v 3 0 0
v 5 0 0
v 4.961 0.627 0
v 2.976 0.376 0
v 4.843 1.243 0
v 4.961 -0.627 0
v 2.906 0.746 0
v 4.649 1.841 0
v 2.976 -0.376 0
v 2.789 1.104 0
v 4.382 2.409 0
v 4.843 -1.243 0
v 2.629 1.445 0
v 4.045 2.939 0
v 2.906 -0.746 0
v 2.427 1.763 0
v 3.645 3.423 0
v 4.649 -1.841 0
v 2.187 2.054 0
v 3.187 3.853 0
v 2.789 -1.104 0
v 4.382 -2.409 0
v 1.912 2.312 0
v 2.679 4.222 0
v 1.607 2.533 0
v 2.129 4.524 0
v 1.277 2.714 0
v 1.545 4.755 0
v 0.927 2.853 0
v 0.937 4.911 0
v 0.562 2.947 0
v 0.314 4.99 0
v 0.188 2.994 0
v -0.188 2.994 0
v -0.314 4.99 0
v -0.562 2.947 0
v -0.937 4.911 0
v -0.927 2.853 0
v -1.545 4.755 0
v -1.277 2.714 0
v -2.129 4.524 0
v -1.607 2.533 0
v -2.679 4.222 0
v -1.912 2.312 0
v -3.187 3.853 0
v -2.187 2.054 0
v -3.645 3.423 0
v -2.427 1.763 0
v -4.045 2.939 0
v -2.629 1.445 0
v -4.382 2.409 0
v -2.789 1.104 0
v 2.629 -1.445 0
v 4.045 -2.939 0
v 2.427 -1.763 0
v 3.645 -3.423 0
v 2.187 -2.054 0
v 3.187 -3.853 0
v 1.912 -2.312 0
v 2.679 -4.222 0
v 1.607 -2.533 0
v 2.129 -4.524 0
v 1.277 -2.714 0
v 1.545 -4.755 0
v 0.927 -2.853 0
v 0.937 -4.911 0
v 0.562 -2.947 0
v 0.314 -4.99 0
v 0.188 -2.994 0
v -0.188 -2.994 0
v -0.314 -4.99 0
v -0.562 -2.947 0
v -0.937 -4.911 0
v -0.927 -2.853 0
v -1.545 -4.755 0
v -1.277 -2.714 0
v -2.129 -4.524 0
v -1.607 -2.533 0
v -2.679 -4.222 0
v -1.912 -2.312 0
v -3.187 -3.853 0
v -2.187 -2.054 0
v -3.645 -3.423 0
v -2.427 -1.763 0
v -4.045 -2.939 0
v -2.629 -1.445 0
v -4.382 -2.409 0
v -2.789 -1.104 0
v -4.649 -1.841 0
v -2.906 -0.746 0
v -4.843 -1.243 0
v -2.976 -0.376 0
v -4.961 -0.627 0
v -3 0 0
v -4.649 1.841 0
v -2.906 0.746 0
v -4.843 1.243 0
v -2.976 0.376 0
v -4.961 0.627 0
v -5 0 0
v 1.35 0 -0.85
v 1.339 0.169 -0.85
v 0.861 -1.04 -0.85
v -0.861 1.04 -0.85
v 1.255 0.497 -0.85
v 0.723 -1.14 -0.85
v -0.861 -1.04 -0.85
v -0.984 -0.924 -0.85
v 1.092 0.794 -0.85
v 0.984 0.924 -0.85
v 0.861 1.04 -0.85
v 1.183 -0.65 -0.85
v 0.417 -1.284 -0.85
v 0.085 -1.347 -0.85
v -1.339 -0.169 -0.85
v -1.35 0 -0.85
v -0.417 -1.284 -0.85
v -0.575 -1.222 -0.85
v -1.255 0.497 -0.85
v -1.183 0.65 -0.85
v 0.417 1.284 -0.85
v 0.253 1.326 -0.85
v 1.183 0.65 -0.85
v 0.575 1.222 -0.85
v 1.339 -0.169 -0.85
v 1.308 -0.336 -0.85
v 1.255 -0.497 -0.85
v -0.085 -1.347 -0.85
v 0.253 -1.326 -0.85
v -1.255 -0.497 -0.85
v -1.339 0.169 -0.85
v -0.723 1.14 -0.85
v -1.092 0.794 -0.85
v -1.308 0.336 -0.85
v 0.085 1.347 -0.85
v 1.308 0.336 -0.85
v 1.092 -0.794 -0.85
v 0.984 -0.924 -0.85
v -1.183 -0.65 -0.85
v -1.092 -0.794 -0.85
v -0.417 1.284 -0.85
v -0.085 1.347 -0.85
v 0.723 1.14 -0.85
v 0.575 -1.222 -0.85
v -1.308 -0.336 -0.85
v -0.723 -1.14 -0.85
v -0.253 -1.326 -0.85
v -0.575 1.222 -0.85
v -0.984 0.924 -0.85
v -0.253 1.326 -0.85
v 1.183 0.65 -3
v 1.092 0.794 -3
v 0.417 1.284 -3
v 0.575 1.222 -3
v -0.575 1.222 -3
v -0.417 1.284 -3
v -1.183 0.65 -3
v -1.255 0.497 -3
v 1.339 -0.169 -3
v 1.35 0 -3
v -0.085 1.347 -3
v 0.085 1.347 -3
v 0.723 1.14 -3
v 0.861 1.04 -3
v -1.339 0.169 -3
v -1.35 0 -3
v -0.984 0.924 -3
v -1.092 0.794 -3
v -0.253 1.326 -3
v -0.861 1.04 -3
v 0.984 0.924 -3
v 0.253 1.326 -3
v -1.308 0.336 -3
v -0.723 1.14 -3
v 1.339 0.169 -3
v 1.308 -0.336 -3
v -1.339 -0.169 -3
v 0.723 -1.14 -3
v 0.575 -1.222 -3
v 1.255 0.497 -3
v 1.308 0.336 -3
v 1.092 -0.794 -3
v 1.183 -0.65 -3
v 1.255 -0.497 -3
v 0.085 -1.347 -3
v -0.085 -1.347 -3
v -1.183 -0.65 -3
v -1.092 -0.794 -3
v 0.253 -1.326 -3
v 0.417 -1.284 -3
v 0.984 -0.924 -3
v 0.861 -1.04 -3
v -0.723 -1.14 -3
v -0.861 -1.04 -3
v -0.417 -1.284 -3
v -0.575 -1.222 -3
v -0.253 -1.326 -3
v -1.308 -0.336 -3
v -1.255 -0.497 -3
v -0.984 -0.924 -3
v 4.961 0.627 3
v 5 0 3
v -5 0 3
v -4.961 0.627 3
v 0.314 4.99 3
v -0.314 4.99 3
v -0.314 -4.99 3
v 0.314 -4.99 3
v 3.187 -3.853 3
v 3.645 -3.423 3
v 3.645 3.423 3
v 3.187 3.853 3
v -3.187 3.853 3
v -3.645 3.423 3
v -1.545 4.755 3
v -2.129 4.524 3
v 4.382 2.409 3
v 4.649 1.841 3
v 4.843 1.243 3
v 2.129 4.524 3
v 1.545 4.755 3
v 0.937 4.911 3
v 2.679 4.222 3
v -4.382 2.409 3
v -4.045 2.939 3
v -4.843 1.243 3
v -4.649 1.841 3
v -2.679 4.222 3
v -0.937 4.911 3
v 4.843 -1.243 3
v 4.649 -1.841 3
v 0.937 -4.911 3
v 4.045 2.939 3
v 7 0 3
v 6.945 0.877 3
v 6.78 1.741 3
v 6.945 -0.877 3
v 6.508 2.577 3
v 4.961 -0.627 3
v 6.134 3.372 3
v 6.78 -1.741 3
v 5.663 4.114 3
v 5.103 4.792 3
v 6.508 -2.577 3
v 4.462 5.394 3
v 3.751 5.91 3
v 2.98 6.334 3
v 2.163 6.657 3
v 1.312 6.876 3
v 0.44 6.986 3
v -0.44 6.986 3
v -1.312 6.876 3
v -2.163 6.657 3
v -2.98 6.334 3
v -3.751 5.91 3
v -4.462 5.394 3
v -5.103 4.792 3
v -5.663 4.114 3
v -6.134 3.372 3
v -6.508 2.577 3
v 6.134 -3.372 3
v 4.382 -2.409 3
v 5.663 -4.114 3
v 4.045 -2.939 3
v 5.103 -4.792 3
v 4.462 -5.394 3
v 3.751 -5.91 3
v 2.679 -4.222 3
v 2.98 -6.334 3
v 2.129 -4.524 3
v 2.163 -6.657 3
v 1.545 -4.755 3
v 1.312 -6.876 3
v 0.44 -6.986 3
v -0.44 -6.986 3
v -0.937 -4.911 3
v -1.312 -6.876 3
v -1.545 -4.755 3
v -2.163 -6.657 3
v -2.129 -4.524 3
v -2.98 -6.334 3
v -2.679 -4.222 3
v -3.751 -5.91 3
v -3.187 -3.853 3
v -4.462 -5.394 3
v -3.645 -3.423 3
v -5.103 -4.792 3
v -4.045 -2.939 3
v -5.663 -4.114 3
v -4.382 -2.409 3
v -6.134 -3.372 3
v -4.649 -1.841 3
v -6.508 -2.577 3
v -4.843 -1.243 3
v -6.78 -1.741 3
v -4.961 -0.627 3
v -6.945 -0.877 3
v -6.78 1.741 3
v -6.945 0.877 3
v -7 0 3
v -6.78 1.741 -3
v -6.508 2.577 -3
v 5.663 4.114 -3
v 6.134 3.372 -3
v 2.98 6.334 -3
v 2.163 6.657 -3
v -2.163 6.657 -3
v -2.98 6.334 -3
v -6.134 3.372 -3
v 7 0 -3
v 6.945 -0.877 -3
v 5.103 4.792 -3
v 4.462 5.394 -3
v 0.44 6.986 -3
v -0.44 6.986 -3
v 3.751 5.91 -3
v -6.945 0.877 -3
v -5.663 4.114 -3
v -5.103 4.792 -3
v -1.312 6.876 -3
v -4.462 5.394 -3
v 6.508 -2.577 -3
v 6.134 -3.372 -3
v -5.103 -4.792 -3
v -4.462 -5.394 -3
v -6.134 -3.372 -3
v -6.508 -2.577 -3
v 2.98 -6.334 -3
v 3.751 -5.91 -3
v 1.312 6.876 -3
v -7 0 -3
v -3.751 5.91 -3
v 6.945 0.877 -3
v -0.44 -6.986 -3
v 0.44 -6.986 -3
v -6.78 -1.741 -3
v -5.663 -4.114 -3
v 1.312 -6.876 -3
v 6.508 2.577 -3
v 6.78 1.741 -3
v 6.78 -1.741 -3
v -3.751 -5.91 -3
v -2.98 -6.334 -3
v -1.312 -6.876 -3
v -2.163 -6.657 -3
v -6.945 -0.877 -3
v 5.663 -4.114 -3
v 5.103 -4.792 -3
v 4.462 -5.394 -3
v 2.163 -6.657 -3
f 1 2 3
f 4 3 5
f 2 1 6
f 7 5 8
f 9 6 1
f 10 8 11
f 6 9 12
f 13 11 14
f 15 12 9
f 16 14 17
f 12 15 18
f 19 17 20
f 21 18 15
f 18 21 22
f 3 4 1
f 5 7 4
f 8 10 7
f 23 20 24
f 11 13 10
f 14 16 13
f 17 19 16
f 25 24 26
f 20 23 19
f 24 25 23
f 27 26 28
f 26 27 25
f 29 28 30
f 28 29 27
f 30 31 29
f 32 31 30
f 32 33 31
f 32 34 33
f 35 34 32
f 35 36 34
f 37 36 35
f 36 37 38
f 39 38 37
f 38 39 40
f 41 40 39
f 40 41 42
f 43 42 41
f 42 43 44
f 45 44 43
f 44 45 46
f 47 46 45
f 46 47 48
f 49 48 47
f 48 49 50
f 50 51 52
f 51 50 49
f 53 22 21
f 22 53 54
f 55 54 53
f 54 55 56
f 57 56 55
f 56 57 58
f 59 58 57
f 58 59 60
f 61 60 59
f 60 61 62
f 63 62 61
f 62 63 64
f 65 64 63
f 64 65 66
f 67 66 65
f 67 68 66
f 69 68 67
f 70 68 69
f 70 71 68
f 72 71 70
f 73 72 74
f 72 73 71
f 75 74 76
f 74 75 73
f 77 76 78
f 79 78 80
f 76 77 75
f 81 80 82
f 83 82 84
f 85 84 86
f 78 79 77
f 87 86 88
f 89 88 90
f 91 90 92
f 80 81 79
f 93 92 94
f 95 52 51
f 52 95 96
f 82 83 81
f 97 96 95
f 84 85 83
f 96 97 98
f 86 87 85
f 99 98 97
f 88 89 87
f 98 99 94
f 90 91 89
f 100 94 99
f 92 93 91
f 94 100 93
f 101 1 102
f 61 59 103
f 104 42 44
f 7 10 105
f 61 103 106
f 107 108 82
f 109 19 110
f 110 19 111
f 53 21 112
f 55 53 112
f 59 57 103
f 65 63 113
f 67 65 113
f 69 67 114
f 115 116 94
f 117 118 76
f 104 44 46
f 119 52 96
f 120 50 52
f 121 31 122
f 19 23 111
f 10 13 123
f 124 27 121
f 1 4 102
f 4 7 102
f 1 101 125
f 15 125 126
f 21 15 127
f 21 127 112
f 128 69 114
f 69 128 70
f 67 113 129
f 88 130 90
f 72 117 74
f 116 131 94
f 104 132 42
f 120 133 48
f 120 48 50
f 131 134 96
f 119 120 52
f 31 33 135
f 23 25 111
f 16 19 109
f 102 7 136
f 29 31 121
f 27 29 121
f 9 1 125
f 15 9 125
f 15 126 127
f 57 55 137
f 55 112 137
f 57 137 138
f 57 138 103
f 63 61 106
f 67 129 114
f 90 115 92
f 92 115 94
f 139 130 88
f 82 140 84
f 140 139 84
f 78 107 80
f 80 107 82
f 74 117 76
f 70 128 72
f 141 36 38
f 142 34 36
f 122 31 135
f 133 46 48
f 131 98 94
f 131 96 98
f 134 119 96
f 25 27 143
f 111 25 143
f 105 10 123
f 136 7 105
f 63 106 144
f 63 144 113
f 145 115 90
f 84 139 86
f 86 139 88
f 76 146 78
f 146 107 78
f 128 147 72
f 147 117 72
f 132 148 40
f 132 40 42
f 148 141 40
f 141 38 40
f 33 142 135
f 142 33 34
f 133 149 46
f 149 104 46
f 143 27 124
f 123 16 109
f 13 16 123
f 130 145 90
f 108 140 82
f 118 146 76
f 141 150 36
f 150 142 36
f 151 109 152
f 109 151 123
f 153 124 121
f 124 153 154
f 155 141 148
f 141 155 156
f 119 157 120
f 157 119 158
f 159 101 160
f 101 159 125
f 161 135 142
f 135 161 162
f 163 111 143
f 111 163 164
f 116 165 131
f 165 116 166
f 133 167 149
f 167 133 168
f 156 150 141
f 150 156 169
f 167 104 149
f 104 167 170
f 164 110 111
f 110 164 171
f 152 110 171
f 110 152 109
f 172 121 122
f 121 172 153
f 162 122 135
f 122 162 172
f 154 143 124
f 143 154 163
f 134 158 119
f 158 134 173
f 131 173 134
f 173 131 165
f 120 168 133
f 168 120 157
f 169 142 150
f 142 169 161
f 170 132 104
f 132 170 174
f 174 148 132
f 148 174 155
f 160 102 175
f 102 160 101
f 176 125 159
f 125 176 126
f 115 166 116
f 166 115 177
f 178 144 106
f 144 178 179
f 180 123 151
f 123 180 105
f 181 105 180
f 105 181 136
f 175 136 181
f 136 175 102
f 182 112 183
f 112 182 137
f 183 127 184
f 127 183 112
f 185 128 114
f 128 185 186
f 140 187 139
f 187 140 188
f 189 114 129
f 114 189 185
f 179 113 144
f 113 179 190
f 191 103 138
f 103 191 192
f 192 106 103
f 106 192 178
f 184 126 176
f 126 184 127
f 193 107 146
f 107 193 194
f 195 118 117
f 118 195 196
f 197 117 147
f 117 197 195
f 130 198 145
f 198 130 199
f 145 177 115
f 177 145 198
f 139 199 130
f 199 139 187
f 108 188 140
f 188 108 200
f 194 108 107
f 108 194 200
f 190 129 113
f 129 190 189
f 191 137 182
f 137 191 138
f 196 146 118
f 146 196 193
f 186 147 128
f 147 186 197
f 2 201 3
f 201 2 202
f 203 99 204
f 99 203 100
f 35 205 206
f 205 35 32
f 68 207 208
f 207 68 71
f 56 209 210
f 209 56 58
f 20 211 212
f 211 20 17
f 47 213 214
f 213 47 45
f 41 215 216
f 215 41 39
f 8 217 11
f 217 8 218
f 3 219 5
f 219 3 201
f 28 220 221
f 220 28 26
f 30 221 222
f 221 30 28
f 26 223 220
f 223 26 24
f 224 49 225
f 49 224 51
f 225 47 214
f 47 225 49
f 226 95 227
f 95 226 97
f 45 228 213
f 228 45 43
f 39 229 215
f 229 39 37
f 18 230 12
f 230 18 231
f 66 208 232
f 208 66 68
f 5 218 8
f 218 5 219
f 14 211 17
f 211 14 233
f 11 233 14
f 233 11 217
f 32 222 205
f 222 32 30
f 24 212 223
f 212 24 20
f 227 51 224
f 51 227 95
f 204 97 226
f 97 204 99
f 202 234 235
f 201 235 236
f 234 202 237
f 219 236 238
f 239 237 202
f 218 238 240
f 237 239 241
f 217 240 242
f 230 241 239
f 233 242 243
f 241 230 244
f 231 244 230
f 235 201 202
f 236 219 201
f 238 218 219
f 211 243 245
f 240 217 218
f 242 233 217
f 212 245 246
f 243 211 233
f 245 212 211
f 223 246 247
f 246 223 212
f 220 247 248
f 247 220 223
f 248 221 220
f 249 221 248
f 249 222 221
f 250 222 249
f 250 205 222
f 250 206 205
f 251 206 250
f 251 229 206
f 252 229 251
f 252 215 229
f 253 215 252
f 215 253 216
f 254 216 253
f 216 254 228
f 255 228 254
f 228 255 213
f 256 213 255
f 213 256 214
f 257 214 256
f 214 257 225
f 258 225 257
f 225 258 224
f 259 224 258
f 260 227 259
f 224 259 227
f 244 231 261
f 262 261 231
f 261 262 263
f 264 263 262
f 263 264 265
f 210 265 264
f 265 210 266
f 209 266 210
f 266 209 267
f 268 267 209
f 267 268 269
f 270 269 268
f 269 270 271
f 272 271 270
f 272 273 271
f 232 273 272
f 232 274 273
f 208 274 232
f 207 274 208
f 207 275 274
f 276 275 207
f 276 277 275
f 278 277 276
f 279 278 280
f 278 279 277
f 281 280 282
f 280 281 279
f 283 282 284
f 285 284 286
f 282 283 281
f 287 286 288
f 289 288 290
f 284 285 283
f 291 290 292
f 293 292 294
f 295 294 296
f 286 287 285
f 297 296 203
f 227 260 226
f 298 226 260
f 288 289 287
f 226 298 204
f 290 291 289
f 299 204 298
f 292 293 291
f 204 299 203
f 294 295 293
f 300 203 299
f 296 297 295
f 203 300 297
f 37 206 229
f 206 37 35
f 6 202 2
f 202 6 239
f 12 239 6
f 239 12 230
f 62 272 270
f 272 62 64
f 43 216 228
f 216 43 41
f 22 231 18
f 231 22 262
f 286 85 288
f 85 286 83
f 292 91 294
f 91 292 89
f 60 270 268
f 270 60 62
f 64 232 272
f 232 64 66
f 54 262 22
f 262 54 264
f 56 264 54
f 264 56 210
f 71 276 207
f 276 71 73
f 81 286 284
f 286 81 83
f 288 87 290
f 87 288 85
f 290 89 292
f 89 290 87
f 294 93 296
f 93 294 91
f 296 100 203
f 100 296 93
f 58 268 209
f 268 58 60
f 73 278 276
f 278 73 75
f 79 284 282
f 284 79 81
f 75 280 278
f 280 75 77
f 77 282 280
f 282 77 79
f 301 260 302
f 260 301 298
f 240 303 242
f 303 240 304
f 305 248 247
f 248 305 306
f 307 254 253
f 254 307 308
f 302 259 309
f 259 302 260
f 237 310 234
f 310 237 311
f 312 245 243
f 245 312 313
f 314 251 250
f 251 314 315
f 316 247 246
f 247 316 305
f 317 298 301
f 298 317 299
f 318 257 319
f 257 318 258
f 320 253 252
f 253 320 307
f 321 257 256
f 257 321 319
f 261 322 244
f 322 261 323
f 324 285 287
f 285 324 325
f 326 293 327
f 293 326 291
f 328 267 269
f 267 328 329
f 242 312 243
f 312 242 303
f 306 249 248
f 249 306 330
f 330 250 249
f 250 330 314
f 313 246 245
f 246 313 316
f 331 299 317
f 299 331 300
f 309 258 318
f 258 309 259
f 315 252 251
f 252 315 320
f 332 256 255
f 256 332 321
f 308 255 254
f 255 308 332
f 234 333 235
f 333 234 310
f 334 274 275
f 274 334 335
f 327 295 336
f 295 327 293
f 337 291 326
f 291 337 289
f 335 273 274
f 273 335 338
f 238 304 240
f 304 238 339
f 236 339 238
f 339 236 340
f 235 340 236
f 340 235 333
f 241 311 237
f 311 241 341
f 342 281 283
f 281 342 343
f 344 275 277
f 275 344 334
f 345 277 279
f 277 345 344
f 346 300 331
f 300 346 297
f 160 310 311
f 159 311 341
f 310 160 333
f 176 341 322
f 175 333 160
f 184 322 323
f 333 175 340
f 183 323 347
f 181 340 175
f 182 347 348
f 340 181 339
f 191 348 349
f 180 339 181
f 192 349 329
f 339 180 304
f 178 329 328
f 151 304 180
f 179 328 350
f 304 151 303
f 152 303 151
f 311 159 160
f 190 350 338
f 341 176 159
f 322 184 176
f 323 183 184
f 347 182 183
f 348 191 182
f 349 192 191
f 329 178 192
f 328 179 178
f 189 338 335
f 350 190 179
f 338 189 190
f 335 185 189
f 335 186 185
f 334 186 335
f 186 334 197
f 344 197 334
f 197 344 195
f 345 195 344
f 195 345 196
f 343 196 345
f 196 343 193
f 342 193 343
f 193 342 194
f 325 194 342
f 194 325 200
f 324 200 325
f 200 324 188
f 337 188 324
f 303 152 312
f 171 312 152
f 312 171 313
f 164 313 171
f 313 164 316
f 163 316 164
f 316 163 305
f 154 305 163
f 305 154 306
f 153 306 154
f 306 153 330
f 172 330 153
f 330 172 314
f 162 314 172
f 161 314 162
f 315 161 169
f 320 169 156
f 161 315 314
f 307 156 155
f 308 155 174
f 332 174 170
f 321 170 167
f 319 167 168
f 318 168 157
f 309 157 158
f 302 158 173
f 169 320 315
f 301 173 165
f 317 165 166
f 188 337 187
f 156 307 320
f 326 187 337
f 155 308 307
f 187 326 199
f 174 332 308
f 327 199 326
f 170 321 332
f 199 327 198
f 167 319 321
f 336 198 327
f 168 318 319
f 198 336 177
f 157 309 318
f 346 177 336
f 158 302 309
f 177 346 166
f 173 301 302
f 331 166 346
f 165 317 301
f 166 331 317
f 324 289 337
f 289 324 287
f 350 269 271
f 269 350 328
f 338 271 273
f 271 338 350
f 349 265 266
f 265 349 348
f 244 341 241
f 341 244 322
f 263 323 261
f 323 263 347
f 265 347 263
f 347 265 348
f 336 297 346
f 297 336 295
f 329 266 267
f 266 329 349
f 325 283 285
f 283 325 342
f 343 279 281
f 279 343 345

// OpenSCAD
$fn = 50;

difference() {
	union() {
		translate(v = [0, 0, -3.0]) {
			cylinder(h = 6, r = 7.0);
		}
	}
	union() {
		translate(v = [0, 0, 0]) {
			rotate(a = [0, 0, 0]) {
				difference() {
					union() {
						translate(v = [0, 0, -6.0]) {
							cylinder(h = 6, r = 1.0);
						}
						translate(v = [0, 0, -0.85]) {
							cylinder(h = 0.85, r1 = 1.35, r2 = 3.0);
						}
						translate(v = [0, 0, -6.0]) {
							cylinder(h = 6, r = 1.35);
						}
						translate(v = [0, 0, -6.0]) {
							cylinder(h = 6, r = 1.0);
						}
					}
					union();
				}
			}
		}
		#cylinder(h = 3, r = 5.0);
	}
}
